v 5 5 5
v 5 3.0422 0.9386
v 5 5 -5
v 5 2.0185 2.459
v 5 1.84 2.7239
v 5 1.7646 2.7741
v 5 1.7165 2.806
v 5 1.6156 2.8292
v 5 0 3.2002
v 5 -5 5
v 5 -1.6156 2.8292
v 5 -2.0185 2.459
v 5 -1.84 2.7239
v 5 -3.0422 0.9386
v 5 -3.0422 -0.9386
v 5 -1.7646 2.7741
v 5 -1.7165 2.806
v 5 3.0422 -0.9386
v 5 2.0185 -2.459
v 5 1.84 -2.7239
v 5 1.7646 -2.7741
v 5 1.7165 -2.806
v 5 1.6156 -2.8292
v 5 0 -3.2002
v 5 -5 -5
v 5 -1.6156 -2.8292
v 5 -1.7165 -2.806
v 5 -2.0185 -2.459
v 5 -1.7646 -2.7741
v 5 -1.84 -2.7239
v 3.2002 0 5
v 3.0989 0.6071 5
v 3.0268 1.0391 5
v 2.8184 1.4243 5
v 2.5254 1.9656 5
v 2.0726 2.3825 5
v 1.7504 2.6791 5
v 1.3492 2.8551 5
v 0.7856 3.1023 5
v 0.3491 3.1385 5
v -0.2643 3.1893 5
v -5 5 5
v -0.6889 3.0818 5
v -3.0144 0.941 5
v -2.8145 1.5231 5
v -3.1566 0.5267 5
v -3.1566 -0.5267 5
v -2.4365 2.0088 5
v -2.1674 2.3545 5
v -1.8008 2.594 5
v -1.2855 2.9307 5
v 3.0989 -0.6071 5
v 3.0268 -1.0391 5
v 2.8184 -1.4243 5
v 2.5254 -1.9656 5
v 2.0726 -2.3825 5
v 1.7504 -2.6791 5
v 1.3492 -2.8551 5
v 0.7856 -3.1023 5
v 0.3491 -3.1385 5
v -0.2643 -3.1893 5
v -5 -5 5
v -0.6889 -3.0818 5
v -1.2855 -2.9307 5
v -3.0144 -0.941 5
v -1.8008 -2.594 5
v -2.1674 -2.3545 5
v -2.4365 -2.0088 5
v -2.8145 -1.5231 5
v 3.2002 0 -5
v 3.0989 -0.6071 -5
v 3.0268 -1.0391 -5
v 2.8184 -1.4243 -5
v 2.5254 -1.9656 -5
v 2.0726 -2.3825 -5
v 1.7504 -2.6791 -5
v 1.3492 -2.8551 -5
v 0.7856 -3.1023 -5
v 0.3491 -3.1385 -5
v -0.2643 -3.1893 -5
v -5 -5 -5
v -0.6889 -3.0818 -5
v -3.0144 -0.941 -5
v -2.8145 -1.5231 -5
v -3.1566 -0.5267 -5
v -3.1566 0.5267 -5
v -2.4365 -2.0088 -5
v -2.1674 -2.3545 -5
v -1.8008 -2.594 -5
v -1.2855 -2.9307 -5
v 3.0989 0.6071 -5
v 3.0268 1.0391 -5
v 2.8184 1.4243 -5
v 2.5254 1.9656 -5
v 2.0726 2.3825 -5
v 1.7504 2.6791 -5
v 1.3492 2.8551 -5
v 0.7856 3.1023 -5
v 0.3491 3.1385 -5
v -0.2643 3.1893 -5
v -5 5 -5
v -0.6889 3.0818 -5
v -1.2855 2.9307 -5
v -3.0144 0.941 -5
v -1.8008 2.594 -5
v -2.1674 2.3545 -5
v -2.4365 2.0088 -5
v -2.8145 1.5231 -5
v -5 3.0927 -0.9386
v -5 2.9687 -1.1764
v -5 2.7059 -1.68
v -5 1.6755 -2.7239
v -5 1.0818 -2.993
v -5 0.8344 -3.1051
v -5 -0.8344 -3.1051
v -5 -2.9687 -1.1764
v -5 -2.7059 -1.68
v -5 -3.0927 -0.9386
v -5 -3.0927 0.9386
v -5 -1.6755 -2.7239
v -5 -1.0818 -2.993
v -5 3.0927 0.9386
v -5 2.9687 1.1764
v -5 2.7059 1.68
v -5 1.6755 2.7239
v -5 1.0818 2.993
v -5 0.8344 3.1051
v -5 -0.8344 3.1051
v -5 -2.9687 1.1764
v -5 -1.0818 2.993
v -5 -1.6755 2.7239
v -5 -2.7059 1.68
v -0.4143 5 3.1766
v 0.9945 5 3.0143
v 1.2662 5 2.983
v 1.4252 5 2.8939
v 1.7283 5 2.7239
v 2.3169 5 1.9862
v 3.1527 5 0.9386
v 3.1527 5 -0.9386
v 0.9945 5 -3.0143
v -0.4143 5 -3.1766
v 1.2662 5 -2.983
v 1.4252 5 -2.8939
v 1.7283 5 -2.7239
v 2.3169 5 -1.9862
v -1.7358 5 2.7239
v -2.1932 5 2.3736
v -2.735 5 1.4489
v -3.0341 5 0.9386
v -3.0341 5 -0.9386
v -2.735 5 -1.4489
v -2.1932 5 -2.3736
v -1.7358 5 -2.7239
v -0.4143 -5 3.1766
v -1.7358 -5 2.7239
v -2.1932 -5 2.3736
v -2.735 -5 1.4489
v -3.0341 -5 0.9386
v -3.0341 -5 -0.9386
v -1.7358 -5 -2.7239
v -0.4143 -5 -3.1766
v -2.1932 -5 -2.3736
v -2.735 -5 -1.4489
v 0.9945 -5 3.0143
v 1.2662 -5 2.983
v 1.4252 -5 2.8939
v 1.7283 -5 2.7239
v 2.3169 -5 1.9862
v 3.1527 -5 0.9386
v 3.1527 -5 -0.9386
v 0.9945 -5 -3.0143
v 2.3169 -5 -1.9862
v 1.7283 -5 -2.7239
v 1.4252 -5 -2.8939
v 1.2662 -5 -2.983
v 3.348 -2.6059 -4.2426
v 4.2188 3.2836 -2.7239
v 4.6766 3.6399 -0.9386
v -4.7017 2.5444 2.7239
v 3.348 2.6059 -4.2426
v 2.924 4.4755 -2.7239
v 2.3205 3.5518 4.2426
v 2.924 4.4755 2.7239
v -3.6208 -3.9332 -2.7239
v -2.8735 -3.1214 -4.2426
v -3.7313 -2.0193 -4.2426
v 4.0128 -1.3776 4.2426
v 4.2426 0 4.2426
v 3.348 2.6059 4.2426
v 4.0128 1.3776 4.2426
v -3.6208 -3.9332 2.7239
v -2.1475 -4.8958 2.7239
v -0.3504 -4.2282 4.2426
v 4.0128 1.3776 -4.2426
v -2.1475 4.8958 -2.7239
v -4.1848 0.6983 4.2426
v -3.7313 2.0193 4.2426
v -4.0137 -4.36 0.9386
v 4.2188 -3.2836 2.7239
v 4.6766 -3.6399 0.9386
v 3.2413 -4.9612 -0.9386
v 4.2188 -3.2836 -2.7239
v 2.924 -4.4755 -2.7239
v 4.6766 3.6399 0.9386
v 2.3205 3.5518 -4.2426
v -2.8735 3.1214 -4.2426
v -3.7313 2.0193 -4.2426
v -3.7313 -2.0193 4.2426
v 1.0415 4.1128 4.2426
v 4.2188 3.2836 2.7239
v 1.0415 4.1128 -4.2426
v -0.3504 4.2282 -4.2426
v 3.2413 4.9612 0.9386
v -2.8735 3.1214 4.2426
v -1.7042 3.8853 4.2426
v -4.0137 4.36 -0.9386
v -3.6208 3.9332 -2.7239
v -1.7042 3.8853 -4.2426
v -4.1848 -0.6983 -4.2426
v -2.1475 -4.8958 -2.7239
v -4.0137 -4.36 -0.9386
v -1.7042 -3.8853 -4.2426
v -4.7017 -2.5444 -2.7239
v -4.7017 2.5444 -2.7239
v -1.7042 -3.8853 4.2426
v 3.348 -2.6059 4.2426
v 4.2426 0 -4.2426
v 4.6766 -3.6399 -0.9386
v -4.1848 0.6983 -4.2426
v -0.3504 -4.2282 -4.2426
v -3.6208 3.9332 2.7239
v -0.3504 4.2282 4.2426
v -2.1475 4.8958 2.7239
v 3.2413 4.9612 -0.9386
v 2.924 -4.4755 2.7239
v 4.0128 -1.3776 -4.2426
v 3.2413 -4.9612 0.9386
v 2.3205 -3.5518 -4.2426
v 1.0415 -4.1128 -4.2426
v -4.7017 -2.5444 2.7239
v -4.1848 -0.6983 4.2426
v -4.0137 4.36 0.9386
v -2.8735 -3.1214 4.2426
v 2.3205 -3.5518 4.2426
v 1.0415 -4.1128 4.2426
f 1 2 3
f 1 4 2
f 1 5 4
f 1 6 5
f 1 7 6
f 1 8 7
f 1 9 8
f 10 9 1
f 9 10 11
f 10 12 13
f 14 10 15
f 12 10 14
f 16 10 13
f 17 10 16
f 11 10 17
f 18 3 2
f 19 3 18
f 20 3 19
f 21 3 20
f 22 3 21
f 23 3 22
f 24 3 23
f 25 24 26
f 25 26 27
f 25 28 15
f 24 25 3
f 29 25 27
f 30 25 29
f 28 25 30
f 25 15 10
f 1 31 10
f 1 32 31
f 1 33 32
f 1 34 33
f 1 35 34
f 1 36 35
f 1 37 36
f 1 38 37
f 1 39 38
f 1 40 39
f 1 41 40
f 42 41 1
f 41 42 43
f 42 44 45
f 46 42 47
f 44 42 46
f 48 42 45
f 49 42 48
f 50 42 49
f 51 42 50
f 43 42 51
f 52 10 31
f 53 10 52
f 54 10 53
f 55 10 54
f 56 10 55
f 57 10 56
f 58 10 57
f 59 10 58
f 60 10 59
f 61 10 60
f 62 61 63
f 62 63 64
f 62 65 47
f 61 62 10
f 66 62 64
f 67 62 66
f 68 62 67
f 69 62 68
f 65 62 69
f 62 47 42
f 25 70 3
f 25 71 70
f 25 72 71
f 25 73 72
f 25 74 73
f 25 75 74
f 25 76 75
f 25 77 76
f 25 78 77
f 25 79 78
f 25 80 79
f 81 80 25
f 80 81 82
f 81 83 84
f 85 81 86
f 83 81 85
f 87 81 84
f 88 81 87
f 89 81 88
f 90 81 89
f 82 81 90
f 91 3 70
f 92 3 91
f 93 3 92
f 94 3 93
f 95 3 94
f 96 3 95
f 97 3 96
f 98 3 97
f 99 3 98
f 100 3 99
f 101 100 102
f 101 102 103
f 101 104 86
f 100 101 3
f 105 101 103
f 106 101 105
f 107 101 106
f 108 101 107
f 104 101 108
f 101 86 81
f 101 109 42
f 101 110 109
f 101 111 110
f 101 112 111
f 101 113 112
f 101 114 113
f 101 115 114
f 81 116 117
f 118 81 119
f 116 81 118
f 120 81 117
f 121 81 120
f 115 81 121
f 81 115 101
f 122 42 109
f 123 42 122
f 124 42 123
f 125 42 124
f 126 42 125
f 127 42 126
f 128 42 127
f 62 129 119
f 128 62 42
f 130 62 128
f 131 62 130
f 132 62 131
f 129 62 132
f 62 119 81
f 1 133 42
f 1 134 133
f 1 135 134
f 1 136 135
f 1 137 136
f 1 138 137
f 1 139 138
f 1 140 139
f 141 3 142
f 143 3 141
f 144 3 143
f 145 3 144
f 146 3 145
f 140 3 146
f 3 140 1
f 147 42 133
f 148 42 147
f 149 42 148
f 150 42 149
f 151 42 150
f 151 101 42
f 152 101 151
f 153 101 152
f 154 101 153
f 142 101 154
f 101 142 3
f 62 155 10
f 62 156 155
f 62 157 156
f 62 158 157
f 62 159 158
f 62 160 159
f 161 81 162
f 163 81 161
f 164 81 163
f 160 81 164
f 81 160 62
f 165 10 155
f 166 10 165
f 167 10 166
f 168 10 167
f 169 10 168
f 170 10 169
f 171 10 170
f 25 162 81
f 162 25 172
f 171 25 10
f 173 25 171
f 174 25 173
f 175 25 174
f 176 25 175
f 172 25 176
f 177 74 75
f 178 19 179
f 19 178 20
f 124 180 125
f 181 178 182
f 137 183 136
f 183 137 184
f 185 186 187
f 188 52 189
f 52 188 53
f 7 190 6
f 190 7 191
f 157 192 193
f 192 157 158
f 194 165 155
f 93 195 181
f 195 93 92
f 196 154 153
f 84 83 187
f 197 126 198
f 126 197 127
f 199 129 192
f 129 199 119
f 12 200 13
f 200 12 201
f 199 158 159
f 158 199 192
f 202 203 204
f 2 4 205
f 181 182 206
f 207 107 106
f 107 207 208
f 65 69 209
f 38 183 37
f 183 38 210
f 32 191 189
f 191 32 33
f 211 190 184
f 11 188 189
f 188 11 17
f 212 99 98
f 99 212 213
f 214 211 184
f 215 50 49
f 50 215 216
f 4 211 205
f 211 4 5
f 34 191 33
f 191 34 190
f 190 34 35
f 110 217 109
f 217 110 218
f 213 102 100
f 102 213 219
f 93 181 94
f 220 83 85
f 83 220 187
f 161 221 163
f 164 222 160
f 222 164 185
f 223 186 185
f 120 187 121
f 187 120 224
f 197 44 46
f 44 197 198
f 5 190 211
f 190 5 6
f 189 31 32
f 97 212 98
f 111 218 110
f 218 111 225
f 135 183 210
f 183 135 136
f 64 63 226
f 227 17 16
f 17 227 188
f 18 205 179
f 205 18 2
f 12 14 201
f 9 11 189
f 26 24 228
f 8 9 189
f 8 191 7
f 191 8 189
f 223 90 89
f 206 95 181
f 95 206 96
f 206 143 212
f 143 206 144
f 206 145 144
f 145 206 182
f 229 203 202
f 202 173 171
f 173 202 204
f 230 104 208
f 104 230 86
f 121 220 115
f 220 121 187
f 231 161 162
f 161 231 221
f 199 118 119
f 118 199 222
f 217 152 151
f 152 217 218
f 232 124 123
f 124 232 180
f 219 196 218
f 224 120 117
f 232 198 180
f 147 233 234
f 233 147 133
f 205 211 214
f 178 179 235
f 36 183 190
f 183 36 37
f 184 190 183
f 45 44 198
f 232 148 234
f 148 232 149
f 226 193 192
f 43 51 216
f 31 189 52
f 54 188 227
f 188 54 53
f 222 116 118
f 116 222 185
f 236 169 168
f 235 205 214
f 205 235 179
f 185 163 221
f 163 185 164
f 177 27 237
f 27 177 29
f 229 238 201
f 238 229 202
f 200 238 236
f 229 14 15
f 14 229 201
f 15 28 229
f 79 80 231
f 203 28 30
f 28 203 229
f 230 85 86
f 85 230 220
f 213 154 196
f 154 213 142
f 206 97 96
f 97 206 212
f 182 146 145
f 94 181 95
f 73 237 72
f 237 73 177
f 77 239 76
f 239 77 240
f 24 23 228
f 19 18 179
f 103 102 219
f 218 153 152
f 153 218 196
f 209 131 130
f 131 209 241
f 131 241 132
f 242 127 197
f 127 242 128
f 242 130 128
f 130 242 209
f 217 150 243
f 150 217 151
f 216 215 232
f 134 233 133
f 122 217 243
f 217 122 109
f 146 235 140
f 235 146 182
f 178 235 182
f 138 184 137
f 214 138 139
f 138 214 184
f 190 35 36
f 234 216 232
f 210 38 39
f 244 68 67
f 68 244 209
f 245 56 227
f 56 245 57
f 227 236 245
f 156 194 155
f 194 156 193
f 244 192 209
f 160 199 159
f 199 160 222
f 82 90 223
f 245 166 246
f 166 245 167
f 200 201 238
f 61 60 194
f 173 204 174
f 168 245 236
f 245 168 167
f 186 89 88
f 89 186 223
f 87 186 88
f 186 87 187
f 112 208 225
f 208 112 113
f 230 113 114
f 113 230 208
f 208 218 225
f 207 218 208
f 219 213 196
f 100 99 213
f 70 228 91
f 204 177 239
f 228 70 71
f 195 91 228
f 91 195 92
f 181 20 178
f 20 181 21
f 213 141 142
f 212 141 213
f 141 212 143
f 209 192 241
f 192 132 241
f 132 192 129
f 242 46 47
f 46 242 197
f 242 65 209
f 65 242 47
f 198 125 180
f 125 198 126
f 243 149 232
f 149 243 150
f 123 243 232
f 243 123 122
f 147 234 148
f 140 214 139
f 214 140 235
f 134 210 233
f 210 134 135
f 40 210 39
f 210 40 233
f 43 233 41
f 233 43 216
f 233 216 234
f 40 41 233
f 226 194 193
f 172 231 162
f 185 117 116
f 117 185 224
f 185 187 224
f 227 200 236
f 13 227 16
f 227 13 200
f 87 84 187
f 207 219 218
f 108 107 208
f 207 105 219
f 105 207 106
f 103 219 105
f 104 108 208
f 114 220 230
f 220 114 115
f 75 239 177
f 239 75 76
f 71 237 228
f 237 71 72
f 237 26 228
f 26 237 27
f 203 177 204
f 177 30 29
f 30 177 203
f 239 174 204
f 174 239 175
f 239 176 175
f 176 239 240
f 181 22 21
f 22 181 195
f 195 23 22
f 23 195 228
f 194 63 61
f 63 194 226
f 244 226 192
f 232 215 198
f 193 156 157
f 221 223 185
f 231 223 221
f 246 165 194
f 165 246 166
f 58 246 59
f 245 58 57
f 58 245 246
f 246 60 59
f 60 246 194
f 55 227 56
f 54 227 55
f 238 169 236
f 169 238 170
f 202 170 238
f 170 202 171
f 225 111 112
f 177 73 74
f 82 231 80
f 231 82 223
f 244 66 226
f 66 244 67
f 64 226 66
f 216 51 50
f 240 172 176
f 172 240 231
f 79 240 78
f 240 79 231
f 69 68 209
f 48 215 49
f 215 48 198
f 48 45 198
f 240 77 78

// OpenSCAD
difference() {
    cube([10,10,10], center=true);
    sphere(d=12);
}
